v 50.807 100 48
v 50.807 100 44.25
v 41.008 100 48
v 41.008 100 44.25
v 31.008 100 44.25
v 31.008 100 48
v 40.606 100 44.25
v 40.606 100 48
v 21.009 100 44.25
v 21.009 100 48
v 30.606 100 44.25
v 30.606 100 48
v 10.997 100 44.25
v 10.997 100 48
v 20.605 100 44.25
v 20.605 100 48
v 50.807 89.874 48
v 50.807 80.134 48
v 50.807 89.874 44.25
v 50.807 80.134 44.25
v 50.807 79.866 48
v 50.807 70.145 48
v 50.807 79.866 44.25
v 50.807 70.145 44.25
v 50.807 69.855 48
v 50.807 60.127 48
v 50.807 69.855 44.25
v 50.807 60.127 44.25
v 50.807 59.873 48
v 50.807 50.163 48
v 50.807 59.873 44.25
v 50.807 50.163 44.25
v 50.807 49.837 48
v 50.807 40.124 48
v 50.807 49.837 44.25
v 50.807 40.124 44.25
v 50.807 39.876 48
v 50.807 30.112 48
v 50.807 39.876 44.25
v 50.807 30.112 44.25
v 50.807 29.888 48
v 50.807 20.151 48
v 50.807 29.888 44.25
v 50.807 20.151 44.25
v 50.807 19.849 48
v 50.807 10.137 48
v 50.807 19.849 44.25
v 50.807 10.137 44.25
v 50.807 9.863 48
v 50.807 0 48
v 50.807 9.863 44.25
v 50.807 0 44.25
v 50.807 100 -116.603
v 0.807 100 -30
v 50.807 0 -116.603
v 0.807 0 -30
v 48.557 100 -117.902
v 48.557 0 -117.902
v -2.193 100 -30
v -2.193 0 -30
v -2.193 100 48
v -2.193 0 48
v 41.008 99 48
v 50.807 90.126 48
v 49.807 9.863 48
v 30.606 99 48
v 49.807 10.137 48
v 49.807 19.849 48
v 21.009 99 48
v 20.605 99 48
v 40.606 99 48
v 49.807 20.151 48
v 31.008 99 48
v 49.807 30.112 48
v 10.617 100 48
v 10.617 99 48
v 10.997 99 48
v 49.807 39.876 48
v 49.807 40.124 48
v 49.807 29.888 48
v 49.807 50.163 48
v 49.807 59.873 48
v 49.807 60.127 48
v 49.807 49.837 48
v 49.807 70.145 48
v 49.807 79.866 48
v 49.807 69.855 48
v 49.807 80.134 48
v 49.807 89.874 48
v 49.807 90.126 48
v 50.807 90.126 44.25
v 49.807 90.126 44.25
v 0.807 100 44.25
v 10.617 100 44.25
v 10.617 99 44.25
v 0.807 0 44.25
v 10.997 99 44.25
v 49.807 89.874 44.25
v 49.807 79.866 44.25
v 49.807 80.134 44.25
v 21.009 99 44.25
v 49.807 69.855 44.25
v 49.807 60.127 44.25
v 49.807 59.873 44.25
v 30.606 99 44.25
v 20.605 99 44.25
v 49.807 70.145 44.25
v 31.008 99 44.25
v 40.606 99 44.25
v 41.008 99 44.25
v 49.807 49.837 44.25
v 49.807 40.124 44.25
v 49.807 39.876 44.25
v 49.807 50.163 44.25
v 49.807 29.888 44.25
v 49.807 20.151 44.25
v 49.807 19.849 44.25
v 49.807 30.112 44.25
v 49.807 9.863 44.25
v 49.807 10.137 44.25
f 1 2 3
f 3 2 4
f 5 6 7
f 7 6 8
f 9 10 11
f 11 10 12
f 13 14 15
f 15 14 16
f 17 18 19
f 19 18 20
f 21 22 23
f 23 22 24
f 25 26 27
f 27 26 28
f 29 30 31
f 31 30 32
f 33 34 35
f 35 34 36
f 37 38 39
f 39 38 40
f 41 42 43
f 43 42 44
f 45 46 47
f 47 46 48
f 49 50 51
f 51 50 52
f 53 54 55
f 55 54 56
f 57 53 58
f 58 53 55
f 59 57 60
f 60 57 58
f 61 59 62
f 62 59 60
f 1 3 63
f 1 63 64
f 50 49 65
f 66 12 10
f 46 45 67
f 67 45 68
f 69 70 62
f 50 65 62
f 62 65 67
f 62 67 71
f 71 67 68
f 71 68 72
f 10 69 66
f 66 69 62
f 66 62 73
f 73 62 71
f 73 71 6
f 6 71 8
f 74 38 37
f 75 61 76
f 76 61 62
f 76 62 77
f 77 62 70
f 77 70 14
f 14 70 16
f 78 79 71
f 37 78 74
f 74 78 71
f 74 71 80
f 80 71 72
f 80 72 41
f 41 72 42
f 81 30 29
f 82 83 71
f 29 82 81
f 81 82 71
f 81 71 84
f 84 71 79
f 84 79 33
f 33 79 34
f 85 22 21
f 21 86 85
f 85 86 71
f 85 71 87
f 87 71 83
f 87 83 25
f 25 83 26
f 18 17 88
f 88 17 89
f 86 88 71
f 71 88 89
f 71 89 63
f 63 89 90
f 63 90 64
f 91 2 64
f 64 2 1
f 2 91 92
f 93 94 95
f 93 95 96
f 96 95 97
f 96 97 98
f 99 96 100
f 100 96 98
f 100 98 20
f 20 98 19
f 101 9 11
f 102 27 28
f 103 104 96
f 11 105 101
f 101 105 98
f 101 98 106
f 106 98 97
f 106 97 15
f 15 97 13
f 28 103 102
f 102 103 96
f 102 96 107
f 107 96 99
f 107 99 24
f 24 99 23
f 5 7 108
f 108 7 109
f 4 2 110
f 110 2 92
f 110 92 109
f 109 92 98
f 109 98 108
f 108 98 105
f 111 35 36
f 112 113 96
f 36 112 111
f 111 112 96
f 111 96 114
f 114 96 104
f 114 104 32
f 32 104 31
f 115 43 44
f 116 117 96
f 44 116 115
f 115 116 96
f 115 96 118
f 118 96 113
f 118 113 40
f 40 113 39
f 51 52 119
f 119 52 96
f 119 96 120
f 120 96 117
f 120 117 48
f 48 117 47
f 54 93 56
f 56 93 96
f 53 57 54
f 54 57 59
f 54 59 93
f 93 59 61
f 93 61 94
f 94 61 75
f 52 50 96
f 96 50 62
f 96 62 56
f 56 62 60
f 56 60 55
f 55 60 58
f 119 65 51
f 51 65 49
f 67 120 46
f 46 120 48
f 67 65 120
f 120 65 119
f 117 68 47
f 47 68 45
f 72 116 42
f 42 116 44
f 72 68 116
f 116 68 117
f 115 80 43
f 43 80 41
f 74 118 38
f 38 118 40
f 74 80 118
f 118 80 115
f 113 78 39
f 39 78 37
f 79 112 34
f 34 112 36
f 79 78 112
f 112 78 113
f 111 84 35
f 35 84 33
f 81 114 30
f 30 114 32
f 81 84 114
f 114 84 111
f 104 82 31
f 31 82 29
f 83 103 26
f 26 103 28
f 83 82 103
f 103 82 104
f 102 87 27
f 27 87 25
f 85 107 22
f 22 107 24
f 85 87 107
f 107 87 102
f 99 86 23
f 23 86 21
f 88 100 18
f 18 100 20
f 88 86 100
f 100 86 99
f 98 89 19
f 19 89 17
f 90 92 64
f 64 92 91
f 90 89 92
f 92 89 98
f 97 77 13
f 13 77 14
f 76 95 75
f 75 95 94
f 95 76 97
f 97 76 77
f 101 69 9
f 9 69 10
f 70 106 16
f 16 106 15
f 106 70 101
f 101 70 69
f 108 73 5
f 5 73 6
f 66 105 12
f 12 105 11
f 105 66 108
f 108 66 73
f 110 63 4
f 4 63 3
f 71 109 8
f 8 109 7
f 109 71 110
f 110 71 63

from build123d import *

# Parameters (mm, degrees)
BOSS_EXTRUDE1_DEPTH = 100
SKETCH2_W           = 3.749917695
SKETCH2_H           = 0.25242756
SKETCH2_H_2         = 0.267899142
SKETCH2_H_3         = 0.289005846
SKETCH2_H_4         = 0.253626666
SKETCH2_H_5         = 0.325456574
SKETCH2_H_6         = 0.248885072
SKETCH2_H_7         = 0.22456854
SKETCH2_H_8         = 0.302440332
SKETCH2_H_9         = 0.27412506
CUT_EXTRUDE1_DEPTH  = 1
SKETCH3_W           = 0.401370442
SKETCH3_H           = 3.749917695
SKETCH3_W_2         = 0.402319906
SKETCH3_W_3         = 0.403269369
SKETCH3_W_4         = 0.379270676
CUT_EXTRUDE2_DEPTH  = 1


with BuildPart() as part:
    # Sketch1 → Boss-Extrude1 (new body)
    with BuildSketch(Plane(origin=(0, 0, 0), x_dir=(1, 0, 0), z_dir=(0, 1, 0))):
        Polygon((0.807035346, 30), (50.807035346, 116.602540378), (48.557035346, 117.901578484), (-2.192964654, 30), (-2.192964654, 0), (-2.192964654, -48), (50.807035346, -48), (50.807035346, -44.250082305), (0.807035346, -44.250082305), (0.807035346, -10), (0.807035346, 3.423298646), align=None)
    extrude(amount=BOSS_EXTRUDE1_DEPTH)

    # Sketch2 → Cut-Extrude1 (cut)
    with BuildSketch(Plane(origin=(50.807035346, 0, 0), x_dir=(0, 0, -1), z_dir=(1, 0, 0))):
        with Locations((-46.125041153, 90)):
            Rectangle(SKETCH2_W, SKETCH2_H)
        with Locations((-46.125041153, 80)):
            Rectangle(SKETCH2_W, SKETCH2_H_2)
        with Locations((-46.125041153, 70)):
            Rectangle(SKETCH2_W, SKETCH2_H_3)
        with Locations((-46.125041153, 60)):
            Rectangle(SKETCH2_W, SKETCH2_H_4)
        with Locations((-46.125041153, 50)):
            Rectangle(SKETCH2_W, SKETCH2_H_5)
        with Locations((-46.125041153, 40)):
            Rectangle(SKETCH2_W, SKETCH2_H_6)
        with Locations((-46.125041153, 30)):
            Rectangle(SKETCH2_W, SKETCH2_H_7)
        with Locations((-46.125041153, 20)):
            Rectangle(SKETCH2_W, SKETCH2_H_8)
        with Locations((-46.125041153, 10)):
            Rectangle(SKETCH2_W, SKETCH2_H_9)
    extrude(amount=-CUT_EXTRUDE1_DEPTH, mode=Mode.SUBTRACT)

    # Sketch3 → Cut-Extrude2 (cut)
    with BuildSketch(Plane(origin=(0, 100, 0), x_dir=(1, 0, 0), z_dir=(0, 1, 0))):
        with Locations((40.807035346, -46.125041153)):
            Rectangle(SKETCH3_W, SKETCH3_H)
        with Locations((30.807035346, -46.125041153)):
            Rectangle(SKETCH3_W_2, SKETCH3_H)
        with Locations((20.807035346, -46.125041153)):
            Rectangle(SKETCH3_W_3, SKETCH3_H)
        with Locations((10.807035346, -46.125041153)):
            Rectangle(SKETCH3_W_4, SKETCH3_H)
    extrude(amount=-CUT_EXTRUDE2_DEPTH, mode=Mode.SUBTRACT)


solid = part.part
